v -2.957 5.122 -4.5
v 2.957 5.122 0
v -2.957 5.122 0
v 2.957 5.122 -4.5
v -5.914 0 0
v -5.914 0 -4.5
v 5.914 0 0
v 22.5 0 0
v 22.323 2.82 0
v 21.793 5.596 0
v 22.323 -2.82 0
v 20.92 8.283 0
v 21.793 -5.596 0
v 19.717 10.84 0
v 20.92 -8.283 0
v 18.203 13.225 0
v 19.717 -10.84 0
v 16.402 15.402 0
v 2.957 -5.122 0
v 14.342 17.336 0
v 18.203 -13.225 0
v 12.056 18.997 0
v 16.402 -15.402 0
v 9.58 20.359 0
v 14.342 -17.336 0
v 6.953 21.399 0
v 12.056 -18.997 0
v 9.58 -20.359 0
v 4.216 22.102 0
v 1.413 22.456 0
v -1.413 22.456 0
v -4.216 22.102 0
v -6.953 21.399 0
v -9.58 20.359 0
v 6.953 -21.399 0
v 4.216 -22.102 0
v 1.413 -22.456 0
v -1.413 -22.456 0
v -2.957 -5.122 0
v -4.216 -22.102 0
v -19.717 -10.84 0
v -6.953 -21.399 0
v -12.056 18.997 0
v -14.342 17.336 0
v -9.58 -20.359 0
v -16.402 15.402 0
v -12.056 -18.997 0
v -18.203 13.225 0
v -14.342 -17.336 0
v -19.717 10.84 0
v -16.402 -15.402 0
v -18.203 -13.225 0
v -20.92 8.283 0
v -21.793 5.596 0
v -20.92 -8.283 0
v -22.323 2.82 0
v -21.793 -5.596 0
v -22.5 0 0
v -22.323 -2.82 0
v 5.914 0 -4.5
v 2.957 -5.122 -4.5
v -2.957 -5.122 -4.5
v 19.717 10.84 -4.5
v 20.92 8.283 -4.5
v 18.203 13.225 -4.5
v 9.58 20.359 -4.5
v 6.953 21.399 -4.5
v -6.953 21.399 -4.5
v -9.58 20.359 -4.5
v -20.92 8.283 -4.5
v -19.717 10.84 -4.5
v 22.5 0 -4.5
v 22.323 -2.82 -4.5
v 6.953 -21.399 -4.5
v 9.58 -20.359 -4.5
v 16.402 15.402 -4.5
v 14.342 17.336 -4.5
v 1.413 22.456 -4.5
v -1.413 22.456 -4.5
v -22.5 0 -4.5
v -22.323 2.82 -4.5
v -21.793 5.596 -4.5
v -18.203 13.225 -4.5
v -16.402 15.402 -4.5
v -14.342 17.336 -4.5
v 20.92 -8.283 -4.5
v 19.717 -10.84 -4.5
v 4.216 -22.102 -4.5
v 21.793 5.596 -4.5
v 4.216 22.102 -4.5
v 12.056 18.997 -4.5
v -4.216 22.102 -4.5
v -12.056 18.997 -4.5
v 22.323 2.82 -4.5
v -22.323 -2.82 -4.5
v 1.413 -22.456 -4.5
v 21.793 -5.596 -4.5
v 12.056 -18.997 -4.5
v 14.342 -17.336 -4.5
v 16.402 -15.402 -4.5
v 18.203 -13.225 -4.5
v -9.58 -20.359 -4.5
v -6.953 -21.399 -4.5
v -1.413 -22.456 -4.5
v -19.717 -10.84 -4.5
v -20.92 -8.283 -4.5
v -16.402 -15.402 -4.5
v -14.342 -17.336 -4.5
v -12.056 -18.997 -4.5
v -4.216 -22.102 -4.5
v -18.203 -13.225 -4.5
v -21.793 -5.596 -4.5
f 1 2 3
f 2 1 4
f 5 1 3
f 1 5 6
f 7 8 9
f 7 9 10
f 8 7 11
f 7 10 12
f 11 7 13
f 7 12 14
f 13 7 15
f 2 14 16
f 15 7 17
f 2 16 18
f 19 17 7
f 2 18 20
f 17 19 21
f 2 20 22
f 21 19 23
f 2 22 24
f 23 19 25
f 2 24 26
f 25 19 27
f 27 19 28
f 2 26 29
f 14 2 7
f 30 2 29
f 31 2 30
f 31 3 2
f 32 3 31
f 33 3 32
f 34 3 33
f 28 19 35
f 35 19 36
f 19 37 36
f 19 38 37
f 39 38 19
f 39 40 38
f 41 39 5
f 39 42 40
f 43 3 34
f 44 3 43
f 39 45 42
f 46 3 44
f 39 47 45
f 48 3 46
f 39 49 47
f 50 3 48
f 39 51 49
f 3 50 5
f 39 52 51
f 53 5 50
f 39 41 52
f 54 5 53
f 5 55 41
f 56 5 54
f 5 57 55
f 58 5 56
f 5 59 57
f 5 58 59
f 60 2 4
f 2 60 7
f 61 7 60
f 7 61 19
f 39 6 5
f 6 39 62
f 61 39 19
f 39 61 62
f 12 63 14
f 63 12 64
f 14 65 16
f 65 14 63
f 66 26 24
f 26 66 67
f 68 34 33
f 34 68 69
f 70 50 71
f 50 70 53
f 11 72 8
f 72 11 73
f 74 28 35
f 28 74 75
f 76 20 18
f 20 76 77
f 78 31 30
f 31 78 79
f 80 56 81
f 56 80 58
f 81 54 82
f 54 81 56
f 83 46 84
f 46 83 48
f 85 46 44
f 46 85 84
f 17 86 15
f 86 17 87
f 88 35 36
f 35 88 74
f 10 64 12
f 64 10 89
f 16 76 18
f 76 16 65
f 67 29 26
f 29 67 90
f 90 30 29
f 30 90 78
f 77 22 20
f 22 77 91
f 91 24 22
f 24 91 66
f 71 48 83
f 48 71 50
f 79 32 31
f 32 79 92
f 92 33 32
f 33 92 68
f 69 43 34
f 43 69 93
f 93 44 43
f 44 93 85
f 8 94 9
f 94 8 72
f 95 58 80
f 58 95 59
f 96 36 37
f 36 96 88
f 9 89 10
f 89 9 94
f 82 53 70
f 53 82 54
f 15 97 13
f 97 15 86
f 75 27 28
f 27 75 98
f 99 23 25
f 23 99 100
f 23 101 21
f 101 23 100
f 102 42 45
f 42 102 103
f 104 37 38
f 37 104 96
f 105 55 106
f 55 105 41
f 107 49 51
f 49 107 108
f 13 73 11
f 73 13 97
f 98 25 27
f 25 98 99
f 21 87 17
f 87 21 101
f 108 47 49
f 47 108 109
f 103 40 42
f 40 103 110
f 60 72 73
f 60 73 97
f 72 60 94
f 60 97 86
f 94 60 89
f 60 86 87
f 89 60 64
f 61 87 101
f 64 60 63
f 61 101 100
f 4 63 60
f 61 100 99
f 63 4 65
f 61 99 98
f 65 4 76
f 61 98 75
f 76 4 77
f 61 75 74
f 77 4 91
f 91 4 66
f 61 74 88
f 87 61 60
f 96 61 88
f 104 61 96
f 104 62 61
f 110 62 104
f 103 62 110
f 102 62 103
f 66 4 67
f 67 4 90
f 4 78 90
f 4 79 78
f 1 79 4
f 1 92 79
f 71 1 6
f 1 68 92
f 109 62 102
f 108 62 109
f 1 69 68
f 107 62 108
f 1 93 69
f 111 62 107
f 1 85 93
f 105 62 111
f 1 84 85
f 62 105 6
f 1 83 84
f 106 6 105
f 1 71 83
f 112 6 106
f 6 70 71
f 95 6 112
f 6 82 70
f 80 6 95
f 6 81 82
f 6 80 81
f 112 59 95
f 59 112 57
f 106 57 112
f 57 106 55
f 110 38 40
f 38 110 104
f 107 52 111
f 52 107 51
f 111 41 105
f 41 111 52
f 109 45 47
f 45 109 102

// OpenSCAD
$fn = 50;

difference() {
	union() {
		translate(v = [0, 0, -4.5]) {
			cylinder(h = 4.5, r = 22.5);
		}
	}
	union() {
		translate(v = [0, 0, 0]) {
			rotate(a = [0, 0, 0]) {
				difference() {
					union() {
						translate(v = [0, 0, -5]) {
							linear_extrude(height = 5) {
								polygon(points = [[5.914249999999999, 0.0], [2.957125, 5.1218907443321156], [-2.9571249999999982, 5.1218907443321156], [-5.914249999999999, 7.242867331857232e-16], [-2.9571250000000022, -5.121890744332115], [2.9571249999999956, -5.121890744332118]]);
							}
						}
					}
					union();
				}
			}
		}
		#translate(v = [0, 0, -100.0]) {
			cylinder(h = 200, r = 3.25);
		}
	}
}
